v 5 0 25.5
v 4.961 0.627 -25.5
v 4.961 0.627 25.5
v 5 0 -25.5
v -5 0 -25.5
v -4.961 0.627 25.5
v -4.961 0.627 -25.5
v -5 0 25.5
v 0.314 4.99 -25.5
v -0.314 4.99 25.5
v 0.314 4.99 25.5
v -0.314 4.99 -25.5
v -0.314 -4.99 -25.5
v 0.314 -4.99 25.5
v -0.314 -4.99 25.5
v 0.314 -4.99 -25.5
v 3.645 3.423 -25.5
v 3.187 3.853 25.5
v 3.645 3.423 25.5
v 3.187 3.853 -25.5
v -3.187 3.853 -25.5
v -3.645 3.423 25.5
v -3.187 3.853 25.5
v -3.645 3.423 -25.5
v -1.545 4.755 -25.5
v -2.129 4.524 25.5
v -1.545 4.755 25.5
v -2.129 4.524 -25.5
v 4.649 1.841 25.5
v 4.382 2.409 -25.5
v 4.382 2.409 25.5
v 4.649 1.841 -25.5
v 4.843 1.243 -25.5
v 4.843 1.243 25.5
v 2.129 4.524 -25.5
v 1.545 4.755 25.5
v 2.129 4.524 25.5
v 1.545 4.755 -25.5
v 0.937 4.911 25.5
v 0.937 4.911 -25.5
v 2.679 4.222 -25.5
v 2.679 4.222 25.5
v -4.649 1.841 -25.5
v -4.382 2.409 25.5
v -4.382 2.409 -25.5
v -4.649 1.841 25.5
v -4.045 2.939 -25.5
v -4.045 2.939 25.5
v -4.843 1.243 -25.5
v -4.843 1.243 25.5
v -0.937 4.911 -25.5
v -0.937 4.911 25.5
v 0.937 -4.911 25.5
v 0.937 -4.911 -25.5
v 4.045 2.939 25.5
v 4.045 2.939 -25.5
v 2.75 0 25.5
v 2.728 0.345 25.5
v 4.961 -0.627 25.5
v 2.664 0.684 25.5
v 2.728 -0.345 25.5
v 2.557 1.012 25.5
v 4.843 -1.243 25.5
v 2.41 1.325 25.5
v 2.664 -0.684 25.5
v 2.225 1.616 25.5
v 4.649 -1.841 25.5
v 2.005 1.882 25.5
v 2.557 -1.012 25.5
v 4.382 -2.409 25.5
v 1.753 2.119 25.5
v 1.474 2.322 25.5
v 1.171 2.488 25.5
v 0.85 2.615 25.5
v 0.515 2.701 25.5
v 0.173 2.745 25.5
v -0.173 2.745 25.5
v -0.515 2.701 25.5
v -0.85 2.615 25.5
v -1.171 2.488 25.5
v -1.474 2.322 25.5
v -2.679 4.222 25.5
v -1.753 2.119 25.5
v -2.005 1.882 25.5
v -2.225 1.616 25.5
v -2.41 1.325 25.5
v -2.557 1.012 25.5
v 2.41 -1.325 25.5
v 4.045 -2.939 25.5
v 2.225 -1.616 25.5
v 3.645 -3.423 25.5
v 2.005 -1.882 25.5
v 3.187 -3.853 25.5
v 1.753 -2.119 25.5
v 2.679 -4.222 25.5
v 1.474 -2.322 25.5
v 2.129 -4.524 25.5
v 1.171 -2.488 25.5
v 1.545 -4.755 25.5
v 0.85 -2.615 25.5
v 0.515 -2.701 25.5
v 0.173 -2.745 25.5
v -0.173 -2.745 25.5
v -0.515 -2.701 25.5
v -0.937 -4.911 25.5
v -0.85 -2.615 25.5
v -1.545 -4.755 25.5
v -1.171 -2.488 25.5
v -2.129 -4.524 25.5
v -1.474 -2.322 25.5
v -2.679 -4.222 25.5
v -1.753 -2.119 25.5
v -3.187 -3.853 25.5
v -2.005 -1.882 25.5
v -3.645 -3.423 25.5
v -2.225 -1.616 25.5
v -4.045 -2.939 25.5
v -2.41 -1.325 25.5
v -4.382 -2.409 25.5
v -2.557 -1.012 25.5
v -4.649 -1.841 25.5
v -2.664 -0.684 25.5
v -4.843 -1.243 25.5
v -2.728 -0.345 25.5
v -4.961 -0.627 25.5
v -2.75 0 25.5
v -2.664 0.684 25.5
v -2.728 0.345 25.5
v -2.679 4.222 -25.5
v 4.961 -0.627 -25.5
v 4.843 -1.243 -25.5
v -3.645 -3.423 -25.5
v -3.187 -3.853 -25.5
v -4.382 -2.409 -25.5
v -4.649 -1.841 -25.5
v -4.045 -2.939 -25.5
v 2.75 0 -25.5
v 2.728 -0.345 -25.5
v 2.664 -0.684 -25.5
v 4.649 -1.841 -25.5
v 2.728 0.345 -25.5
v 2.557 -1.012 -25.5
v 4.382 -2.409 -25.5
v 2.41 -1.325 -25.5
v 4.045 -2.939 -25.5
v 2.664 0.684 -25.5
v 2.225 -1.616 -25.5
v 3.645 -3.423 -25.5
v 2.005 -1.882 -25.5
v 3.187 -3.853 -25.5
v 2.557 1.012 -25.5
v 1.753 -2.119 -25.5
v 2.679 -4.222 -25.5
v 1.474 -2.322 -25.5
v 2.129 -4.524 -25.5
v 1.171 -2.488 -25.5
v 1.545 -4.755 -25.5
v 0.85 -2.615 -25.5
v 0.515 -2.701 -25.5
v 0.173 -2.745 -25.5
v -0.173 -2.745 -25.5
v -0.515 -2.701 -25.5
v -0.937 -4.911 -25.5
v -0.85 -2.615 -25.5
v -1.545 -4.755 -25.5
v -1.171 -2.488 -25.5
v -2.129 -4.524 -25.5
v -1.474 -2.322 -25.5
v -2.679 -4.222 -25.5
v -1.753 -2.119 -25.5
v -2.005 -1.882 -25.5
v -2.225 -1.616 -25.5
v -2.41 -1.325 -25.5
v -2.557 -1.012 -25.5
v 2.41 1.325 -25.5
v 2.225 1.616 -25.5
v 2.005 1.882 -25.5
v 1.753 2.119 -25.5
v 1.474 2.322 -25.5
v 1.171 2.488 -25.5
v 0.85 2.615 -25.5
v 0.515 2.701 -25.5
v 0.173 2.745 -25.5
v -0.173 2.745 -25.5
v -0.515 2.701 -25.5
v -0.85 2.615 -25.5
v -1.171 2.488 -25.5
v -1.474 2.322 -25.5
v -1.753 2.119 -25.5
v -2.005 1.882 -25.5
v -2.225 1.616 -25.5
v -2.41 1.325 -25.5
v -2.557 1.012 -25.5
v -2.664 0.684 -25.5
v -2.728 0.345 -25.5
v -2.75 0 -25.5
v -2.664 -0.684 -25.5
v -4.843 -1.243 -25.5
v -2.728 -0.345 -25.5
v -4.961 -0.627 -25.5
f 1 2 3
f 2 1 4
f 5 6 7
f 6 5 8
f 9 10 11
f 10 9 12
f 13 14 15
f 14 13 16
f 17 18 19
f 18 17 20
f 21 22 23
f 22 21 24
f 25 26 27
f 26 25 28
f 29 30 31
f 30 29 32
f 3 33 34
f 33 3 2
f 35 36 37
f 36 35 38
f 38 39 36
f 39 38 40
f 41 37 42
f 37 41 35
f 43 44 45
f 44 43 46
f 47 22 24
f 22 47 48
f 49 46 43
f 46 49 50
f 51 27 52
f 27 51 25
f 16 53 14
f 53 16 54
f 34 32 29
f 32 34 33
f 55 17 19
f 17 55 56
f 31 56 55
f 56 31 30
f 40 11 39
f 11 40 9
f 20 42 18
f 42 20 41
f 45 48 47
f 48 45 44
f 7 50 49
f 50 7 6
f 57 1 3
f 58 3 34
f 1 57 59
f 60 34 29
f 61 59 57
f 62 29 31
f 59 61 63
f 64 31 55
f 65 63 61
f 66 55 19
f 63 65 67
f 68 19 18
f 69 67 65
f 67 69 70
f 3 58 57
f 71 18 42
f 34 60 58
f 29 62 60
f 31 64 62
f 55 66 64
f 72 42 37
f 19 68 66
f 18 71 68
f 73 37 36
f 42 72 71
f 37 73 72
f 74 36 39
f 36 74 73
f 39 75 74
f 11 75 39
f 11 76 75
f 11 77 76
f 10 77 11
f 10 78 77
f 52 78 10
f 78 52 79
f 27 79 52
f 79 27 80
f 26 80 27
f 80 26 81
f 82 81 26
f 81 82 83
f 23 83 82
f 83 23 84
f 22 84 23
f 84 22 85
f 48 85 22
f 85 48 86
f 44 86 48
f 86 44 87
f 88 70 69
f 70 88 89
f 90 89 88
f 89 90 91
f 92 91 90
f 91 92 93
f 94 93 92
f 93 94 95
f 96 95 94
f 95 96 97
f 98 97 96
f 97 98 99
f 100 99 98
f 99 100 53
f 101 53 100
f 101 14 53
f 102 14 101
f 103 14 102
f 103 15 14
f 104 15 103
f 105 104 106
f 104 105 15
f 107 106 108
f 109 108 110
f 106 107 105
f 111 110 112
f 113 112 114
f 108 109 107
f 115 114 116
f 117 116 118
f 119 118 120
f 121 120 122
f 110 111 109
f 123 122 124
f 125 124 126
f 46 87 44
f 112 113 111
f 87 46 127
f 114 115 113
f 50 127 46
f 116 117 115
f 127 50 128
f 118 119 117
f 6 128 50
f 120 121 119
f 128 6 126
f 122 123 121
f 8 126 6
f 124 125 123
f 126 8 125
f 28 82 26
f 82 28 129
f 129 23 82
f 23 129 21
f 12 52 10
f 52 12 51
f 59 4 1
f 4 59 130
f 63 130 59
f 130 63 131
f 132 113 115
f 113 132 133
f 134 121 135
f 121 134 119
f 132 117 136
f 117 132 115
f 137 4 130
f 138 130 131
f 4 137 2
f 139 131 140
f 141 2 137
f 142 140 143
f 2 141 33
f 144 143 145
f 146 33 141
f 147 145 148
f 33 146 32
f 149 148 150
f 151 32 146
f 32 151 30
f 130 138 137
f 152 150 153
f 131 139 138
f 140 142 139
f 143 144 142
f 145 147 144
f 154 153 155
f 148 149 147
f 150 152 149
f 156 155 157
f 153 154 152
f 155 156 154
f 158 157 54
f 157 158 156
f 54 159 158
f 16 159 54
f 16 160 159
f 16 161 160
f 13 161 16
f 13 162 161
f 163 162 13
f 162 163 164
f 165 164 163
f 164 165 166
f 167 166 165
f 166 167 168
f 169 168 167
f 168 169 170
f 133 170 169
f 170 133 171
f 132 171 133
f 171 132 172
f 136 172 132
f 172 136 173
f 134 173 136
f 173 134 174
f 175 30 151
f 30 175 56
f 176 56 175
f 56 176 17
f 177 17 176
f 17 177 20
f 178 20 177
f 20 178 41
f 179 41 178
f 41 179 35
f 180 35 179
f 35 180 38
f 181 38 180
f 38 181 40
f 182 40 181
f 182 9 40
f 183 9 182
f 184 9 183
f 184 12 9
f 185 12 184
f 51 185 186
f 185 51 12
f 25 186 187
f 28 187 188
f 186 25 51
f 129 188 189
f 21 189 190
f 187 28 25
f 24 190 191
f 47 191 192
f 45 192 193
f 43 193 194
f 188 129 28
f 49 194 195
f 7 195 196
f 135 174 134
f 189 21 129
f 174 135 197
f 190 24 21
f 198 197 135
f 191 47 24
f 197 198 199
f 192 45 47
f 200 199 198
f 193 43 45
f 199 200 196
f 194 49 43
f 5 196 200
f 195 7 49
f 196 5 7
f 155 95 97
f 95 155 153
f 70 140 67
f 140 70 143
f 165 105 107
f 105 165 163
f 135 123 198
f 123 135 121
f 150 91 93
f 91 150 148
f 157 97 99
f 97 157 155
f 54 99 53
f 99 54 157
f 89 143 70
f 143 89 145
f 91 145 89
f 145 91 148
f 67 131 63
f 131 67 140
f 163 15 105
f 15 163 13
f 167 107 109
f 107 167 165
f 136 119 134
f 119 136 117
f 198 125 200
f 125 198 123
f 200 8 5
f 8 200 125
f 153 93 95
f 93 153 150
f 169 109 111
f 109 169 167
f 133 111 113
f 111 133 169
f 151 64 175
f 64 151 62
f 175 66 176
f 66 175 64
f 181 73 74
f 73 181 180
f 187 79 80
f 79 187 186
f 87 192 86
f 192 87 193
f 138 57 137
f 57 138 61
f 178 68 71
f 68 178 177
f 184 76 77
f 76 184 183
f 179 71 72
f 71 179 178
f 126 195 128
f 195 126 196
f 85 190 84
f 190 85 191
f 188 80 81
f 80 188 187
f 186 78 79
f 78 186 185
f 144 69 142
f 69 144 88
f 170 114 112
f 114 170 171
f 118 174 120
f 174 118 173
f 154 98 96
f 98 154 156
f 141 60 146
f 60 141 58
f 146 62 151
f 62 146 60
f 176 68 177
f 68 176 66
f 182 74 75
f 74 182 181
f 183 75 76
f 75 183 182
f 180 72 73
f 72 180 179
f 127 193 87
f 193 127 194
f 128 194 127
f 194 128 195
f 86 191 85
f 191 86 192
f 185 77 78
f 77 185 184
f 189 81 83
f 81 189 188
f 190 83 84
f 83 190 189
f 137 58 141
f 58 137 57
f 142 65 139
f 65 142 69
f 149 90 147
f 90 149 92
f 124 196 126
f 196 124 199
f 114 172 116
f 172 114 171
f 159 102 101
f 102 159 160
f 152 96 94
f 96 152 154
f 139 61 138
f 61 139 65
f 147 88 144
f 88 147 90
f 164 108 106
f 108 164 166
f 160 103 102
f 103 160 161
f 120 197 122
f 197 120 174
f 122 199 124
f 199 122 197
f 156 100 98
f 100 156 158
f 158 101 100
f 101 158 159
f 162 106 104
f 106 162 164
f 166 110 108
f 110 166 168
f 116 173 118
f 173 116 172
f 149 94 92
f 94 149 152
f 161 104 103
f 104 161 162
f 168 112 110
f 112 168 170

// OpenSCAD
$fn = 50;


difference() {
	union() {
		translate(v = [0, 0, -25.5000000000]) {
			cylinder(h = 51, r = 5.0000000000);
		}
	}
	union() {
		translate(v = [0, 0, -100.0000000000]) {
			cylinder(h = 200, r = 2.7500000000);
		}
	}
}
